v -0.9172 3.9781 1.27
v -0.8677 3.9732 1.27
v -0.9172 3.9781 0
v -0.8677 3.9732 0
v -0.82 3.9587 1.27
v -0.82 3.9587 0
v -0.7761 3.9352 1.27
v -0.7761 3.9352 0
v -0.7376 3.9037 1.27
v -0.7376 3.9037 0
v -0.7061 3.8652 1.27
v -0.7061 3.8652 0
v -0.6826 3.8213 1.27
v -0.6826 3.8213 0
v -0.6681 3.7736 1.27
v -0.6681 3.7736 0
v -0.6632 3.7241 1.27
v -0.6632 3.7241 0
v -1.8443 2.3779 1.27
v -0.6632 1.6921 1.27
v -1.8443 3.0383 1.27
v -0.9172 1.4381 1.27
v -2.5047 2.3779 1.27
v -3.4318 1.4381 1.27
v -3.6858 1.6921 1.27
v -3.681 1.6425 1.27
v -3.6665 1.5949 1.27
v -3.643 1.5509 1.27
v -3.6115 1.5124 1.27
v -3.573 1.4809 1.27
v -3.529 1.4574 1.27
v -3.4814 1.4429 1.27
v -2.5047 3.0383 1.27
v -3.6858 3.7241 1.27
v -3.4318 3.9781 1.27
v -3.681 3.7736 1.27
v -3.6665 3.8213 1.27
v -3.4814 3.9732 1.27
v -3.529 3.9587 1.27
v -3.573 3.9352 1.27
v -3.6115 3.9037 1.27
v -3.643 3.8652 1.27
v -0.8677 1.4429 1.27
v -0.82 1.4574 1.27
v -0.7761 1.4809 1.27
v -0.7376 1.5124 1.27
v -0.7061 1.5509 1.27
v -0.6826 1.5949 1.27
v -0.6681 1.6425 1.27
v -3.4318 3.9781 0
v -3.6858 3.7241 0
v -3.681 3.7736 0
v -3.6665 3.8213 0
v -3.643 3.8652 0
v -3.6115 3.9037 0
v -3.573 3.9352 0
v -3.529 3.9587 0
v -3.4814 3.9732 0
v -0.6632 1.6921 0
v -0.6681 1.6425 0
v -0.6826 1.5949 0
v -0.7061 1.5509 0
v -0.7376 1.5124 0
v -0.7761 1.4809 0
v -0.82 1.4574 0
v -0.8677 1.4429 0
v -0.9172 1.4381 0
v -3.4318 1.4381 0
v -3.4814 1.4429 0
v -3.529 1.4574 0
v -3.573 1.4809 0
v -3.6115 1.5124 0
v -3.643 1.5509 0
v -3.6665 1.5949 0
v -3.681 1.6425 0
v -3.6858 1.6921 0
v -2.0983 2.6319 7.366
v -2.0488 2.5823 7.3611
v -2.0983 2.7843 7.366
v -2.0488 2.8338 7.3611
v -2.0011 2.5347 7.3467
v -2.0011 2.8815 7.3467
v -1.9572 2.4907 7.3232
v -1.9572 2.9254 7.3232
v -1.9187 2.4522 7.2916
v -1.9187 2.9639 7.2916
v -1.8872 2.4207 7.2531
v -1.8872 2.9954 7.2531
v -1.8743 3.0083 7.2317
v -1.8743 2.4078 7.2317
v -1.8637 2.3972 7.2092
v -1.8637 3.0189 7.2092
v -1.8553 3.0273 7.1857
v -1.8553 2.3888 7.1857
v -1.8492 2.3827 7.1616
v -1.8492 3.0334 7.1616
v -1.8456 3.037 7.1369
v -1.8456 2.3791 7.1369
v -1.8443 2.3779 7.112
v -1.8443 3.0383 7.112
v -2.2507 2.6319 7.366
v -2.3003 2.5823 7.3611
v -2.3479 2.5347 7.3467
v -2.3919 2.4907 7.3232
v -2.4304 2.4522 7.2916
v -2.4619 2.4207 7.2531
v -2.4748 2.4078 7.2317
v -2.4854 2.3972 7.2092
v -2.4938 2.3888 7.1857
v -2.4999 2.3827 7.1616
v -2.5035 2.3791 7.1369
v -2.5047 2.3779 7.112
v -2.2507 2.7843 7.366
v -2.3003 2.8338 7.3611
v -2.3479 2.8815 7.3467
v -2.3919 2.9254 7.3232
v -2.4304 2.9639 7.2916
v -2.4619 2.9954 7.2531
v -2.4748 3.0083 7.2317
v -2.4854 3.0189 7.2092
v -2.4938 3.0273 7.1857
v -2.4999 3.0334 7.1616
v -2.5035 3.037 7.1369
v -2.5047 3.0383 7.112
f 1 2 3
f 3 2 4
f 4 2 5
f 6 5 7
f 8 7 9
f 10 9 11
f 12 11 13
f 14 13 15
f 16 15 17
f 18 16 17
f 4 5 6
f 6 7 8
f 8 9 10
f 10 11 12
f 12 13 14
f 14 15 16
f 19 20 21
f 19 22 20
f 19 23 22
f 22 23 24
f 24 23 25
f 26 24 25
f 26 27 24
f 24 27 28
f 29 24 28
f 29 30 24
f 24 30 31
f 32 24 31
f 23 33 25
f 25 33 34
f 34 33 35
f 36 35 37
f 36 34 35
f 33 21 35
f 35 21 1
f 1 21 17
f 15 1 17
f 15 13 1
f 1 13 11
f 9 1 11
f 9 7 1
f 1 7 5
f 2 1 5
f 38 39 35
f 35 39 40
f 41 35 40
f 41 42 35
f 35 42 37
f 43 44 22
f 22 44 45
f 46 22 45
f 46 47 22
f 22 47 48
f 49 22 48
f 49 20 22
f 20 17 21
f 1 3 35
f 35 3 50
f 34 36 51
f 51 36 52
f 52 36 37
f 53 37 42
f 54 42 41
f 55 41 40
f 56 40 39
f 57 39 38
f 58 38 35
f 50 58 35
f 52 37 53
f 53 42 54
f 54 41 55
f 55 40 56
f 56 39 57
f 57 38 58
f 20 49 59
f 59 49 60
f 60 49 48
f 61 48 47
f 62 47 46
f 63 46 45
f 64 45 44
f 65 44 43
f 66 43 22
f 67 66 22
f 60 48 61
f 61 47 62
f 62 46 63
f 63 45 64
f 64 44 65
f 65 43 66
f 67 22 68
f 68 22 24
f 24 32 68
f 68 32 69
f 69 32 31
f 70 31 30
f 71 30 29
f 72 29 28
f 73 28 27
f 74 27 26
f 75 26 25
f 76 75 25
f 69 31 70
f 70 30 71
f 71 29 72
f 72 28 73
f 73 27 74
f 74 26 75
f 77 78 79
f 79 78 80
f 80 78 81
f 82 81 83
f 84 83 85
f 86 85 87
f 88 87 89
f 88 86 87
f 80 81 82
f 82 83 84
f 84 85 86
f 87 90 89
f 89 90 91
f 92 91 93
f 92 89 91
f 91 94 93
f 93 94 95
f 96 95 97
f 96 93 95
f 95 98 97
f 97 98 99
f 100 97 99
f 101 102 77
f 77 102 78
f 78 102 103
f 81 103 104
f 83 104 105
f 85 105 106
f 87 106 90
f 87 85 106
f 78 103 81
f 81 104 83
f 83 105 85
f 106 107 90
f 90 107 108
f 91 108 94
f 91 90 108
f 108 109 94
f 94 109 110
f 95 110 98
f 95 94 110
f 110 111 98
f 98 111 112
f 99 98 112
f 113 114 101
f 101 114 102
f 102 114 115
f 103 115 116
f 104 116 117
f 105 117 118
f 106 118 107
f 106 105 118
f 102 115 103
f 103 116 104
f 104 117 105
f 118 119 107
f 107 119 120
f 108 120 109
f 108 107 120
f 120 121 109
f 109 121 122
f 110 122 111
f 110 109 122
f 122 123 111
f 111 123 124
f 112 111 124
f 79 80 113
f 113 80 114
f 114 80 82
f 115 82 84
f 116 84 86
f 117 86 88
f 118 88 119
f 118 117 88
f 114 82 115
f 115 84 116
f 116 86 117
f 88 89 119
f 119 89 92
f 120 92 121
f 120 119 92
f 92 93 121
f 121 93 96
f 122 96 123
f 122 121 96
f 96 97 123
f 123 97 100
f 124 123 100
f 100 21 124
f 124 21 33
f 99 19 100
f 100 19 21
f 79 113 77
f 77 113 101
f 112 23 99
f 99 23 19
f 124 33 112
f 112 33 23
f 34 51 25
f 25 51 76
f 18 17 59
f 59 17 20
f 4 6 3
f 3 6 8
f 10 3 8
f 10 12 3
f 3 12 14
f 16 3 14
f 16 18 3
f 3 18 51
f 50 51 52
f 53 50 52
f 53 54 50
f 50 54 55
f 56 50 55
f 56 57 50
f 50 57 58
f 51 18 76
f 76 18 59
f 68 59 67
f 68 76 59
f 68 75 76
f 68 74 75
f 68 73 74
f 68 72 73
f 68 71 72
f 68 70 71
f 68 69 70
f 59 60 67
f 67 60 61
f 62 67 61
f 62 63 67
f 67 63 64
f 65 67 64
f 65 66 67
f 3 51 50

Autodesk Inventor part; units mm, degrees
ref_plane "YZ Plane" through (0, 0, 0) normal (1, 0, 0) x (0, 1, 0)
ref_plane "XZ Plane" through (0, 0, 0) normal (0, 1, 0) x (-1, 0, 0)
ref_plane "XY Plane" through (0, 0, 0) normal (0, 0, 1) x (1, 0, 0)
sketch "Sketch1" plane through (0, 0, 0) normal (0, 0, 1) x (1, 0, 0)
  line L0 (-0.6632, 1.4381) -> (-3.6858, 1.4381)
  line L1 (-3.6858, 1.4381) -> (-3.6858, 3.9781)
  line L2 (-3.6858, 3.9781) -> (-0.6632, 3.9781)
  line L3 (-0.6632, 3.9781) -> (-0.6632, 1.4381)
  dimension "d0" = 3.0226
  dimension "d1" = 2.54
extrude "Extrusion1" add sketch "Sketch1" along normal blind 1.27
sketch "Sketch2" plane through (0, 0, 1.27) normal (0, 0, 1) x (1, 0, 0)
  line L0 (-2.5047, 3.0383) -> (-1.8443, 3.0383)
  line L1 (-1.8443, 3.0383) -> (-1.8443, 2.3779)
  line L2 (-1.8443, 2.3779) -> (-2.5047, 2.3779)
  line L3 (-2.5047, 2.3779) -> (-2.5047, 3.0383)
  point P0 (-2.1745, 2.7081)
  dimension "d6" = 0.3302
  dimension "d7" = 0.3302
  dimension "d8" = 0.3302
  dimension "d9" = 0.3302
extrude "Extrusion2" add sketch "Sketch2" along normal blind 6.096
fillet "Fillet1" radius 0.254 4 edges at (-2.1745, 2.3779, 7.366) (-1.8443, 2.7081, 7.366) (-2.1745, 3.0383, 7.366) (-2.5047, 2.7081, 7.366)
fillet "Fillet2" radius 0.254 4 edges at (-3.6858, 1.4381, 0.635) (-0.6632, 1.4381, 0.635) (-0.6632, 3.9781, 0.635) (-3.6858, 3.9781, 0.635)
equation "\"d7\" = d6"
equation "\"d8\" = d6"
equation "\"d9\" = d8"
properties part number "2009_CTS_CopperPost"
